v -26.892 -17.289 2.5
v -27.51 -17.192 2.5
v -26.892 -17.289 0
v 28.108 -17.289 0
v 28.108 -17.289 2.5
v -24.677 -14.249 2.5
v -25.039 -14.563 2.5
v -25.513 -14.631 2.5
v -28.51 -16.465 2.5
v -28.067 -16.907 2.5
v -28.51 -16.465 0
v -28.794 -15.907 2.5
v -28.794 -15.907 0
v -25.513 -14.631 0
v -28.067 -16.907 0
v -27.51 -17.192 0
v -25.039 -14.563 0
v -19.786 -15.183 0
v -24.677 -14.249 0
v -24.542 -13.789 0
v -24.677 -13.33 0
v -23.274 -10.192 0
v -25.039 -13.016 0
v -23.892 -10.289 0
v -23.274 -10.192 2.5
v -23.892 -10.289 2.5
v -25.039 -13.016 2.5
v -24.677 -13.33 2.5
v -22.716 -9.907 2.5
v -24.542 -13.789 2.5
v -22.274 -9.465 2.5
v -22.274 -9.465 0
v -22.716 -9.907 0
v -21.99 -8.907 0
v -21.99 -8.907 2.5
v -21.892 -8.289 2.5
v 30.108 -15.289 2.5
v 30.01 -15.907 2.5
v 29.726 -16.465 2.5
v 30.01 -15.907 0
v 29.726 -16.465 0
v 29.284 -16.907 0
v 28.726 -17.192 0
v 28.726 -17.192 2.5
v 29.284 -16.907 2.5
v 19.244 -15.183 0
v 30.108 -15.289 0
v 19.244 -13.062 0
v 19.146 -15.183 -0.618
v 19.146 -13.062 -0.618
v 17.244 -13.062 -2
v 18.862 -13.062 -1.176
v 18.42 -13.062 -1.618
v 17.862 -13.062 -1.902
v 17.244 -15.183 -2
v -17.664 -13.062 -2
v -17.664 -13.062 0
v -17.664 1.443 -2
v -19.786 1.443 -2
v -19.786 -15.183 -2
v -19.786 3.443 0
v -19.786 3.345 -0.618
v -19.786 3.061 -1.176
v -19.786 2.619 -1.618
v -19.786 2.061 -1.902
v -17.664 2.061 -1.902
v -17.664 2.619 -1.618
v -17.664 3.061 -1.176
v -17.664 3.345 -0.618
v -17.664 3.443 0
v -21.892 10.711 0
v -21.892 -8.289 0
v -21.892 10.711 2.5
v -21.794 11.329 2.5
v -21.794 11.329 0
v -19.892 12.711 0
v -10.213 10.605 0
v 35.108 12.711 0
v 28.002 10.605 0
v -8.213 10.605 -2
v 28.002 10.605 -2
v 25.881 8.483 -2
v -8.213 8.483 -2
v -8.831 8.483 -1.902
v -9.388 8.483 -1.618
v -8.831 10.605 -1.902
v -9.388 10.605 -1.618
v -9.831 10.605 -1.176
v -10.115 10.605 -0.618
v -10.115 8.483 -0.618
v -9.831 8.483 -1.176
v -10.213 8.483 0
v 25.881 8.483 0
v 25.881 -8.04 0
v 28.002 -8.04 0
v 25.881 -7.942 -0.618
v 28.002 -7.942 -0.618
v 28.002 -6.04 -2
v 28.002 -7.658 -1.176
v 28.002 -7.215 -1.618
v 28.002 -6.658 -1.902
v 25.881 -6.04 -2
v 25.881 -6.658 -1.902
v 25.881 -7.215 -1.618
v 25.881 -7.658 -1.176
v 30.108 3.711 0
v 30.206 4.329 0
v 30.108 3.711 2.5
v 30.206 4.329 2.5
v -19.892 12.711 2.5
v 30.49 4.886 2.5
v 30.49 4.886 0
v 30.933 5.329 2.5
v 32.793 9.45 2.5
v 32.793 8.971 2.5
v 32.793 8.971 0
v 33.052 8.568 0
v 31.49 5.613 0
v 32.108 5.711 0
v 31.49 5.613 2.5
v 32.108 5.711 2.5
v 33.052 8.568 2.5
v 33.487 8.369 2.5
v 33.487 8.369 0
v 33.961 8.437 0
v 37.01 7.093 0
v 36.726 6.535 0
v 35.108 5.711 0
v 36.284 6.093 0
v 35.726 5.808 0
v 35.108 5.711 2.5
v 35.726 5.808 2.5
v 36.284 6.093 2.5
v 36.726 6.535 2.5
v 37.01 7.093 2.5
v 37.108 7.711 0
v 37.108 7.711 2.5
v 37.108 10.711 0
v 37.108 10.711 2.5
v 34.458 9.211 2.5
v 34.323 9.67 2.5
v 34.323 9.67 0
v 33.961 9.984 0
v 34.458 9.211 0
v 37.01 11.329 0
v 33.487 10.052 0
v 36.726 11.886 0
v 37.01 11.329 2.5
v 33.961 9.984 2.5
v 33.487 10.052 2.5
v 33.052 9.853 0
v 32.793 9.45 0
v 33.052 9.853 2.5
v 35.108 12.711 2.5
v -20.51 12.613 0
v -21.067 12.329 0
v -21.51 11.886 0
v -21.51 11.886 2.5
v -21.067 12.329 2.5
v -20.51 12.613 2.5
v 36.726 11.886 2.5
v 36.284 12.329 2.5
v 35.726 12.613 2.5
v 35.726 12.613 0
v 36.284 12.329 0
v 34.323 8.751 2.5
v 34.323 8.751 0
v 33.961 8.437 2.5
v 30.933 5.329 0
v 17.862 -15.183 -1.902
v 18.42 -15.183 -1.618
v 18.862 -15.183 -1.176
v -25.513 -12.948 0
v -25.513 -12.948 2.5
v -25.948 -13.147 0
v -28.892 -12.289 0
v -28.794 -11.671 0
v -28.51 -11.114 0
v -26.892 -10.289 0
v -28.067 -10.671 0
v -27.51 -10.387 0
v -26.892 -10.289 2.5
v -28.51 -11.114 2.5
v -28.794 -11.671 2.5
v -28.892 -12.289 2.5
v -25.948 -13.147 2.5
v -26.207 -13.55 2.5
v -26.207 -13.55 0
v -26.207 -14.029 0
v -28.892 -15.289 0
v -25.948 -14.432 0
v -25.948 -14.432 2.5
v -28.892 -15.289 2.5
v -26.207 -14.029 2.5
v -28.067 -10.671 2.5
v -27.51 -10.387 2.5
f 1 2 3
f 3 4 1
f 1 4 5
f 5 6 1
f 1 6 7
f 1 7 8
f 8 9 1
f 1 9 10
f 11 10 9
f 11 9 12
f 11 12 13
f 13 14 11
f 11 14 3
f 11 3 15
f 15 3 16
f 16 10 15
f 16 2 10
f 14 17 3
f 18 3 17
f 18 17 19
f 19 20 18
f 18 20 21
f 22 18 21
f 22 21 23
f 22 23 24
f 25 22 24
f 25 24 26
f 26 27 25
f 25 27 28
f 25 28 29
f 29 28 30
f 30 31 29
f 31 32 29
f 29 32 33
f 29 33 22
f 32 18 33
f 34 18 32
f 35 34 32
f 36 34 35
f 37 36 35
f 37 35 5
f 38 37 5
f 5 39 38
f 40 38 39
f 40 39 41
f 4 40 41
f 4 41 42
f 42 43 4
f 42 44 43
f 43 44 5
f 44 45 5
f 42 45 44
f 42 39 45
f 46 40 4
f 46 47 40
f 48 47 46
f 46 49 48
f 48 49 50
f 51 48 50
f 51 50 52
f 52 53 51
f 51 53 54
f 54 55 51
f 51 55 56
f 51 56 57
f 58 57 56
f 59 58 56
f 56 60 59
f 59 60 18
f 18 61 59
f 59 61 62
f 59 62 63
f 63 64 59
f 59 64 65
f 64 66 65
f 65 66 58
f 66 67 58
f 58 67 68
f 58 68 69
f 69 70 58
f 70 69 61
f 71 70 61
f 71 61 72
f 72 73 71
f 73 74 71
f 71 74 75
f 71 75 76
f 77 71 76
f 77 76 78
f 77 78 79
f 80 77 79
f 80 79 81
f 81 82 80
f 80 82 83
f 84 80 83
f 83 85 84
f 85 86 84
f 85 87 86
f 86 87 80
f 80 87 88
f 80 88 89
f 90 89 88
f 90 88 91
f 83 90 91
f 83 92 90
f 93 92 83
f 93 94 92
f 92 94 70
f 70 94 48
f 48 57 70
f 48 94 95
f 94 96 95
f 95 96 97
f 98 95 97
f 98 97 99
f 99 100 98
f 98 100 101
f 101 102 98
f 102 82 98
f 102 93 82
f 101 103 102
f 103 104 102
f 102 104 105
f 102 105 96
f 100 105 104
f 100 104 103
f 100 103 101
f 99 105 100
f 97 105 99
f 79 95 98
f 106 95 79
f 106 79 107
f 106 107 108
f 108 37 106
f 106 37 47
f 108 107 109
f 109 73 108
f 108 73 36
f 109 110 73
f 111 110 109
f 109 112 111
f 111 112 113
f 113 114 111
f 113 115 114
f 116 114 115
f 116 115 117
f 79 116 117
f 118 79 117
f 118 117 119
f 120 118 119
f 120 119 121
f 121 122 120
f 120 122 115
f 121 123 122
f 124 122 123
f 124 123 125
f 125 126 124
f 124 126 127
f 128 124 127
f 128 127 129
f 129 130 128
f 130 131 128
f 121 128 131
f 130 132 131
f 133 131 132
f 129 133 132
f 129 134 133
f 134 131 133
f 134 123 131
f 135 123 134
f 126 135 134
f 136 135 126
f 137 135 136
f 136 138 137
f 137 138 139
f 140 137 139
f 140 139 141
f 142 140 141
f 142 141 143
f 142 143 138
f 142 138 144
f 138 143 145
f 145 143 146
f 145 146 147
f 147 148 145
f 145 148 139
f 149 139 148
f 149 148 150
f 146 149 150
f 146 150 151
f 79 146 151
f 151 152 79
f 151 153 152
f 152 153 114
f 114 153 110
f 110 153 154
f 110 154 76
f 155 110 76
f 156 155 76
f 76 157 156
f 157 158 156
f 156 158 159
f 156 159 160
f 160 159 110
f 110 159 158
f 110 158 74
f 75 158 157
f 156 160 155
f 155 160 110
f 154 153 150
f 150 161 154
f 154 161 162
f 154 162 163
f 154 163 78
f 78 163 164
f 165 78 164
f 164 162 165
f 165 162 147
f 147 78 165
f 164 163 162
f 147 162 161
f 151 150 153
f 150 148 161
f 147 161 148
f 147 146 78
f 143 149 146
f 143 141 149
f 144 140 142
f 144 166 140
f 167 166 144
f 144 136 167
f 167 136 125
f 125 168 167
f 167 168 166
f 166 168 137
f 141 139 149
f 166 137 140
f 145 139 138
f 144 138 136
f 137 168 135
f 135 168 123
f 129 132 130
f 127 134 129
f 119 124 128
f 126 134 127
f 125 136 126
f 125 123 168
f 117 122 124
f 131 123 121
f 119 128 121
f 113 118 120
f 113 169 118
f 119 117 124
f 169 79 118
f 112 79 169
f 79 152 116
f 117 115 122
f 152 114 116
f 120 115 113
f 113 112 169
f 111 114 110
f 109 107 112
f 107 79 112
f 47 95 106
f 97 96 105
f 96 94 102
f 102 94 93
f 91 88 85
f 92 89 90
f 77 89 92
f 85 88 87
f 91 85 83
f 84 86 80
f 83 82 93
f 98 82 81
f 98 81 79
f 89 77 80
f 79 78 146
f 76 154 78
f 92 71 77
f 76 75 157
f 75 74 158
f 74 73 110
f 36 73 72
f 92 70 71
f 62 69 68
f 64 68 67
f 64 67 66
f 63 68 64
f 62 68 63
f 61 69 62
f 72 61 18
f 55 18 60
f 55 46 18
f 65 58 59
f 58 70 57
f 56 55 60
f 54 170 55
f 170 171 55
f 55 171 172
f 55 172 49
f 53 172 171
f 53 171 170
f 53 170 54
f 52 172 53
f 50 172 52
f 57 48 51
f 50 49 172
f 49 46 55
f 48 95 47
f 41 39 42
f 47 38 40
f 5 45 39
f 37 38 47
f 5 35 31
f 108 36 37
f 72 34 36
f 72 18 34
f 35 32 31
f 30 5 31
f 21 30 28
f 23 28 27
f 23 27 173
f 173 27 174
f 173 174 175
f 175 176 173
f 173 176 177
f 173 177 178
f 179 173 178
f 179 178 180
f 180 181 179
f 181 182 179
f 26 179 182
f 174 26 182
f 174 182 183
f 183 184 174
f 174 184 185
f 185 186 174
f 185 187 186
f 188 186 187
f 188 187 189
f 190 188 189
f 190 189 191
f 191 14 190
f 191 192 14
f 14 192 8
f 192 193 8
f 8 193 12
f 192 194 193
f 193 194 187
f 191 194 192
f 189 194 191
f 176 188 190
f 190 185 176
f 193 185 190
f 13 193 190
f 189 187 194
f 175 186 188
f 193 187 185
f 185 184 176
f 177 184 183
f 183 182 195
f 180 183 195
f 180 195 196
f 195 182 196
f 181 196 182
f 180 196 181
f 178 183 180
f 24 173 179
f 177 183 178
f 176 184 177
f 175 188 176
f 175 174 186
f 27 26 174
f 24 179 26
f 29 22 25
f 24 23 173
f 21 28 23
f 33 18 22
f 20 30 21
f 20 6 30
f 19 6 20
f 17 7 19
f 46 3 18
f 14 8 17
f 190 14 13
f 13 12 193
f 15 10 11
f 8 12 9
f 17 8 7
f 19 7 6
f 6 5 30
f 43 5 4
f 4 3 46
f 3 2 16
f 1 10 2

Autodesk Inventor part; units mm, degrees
ref_plane "YZ Plane" through (0, 0, 0) normal (1, 0, 0) x (0, 1, 0)
ref_plane "XZ Plane" through (0, 0, 0) normal (0, 1, 0) x (-1, 0, 0)
ref_plane "XY Plane" through (0, 0, 0) normal (0, 0, 1) x (1, 0, 0)
sketch "Эскиз1" plane through (0, 0, 0) normal (0, 0, 1) x (1, 0, 0)
  line L0 (-21.8917, 12.7106) -> (30.1083, 12.7106)
  line L1 (30.1083, 5.7106) -> (30.1083, -17.2894)
  line L2 (30.1083, -17.2894) -> (-21.8917, -17.2894)
  line L3 (-21.8917, -10.2894) -> (-21.8917, 12.7106)
  line L4 (-21.8917, -17.2894) -> (-28.8917, -17.2894)
  line L5 (-28.8917, -17.2894) -> (-28.8917, -10.2894)
  line L6 (-28.8917, -10.2894) -> (-21.8917, -10.2894)
  line L7 (30.1083, 12.7106) -> (37.1083, 12.7106)
  line L8 (37.1083, 12.7106) -> (37.1083, 5.7106)
  line L9 (37.1083, 5.7106) -> (30.1083, 5.7106)
  point P0 (0, 0)
  dimension "d3" = 7
  dimension "d5" = 7
extrude "Выдавливание1" add sketch "Эскиз1" along normal blind 2.5
fillet "Сопряжение1" radius 2 6 edges at (37.1083, 12.7106, 1.25) (37.1083, 5.7106, 1.25) (30.1083, -17.2894, 1.25) (-28.8917, -10.2894, 1.25) (-21.8917, 12.7106, 1.25) (-28.8917, -17.2894, 1.25)
fillet "Сопряжение2" radius 2 2 edges at (-21.8917, -10.2894, 1.25) (30.1083, 5.7106, 1.25)
sketch "Эскиз2" plane through (0, 0, 2.5) normal (0, 0, 1) x (1, 0, 0)
  arc A0 (-26.8917, -10.2894) -> (-28.8917, -12.2894) centre (-26.8917, -12.2894) ccw projected
  circle A1 centre (-25.3917, -13.7894) radius 0.85
  circle A2 centre (33.6083, 9.2106) radius 0.85
  point P0 (0, 0)
  point P1 (37.1083, 10.7106)
  point P2 (35.1083, 5.7106)
  dimension "d12" = 1.7
  dimension "d15" = 1.7
extrude "Выдавливание2" cut sketch "Эскиз2" against normal blind 2.5
sketch "Эскиз3" plane through (0, 0, 0) normal (0, 0, -1) x (-1, 0, 0)
  arc A0 (21.8917, 10.7106) -> (19.8917, 12.7106) centre (19.8917, 10.7106) ccw projected
  line L0 (-28.1083, -17.2894) -> (26.8917, -17.2894) projected
  line L1 (-19.2442, -15.1834) -> (19.7856, -15.1834)
  line L2 (19.7856, -15.1834) -> (19.7856, 3.4434)
  line L3 (10.2125, 10.6045) -> (-28.0023, 10.6045)
  line L4 (-28.0023, 10.6045) -> (-28.0023, -8.0395)
  line L5 (19.7856, -15.1834) -> (22.7856, -15.1834) construction
  line L6 (17.6643, -13.062) -> (-19.2442, -13.062)
  line L7 (-25.8809, -8.0395) -> (-25.8809, 8.4832)
  line L8 (-25.8809, 8.4832) -> (10.2125, 8.4832)
  line L9 (17.6643, 3.4434) -> (17.6643, -13.062)
  line L10 (10.2125, 10.6045) -> (10.2125, 8.4832)
  line L11 (19.7856, 3.4434) -> (17.6643, 3.4434)
  line L12 (-19.2442, -15.1834) -> (-19.2442, -13.062)
  line L13 (-28.0023, -8.0395) -> (-25.8809, -8.0395)
  point P0 (0, 0)
extrude "Выдавливание3" add sketch "Эскиз3" along normal blind 2
fillet "Сопряжение3" radius 2 4 edges at (-18.7249, 3.4434, -2) (-10.2125, 9.5438, -2) (26.9416, -8.0395, -2) (19.2442, -14.1227, -2)
properties part number "Дно Модуля БП"
